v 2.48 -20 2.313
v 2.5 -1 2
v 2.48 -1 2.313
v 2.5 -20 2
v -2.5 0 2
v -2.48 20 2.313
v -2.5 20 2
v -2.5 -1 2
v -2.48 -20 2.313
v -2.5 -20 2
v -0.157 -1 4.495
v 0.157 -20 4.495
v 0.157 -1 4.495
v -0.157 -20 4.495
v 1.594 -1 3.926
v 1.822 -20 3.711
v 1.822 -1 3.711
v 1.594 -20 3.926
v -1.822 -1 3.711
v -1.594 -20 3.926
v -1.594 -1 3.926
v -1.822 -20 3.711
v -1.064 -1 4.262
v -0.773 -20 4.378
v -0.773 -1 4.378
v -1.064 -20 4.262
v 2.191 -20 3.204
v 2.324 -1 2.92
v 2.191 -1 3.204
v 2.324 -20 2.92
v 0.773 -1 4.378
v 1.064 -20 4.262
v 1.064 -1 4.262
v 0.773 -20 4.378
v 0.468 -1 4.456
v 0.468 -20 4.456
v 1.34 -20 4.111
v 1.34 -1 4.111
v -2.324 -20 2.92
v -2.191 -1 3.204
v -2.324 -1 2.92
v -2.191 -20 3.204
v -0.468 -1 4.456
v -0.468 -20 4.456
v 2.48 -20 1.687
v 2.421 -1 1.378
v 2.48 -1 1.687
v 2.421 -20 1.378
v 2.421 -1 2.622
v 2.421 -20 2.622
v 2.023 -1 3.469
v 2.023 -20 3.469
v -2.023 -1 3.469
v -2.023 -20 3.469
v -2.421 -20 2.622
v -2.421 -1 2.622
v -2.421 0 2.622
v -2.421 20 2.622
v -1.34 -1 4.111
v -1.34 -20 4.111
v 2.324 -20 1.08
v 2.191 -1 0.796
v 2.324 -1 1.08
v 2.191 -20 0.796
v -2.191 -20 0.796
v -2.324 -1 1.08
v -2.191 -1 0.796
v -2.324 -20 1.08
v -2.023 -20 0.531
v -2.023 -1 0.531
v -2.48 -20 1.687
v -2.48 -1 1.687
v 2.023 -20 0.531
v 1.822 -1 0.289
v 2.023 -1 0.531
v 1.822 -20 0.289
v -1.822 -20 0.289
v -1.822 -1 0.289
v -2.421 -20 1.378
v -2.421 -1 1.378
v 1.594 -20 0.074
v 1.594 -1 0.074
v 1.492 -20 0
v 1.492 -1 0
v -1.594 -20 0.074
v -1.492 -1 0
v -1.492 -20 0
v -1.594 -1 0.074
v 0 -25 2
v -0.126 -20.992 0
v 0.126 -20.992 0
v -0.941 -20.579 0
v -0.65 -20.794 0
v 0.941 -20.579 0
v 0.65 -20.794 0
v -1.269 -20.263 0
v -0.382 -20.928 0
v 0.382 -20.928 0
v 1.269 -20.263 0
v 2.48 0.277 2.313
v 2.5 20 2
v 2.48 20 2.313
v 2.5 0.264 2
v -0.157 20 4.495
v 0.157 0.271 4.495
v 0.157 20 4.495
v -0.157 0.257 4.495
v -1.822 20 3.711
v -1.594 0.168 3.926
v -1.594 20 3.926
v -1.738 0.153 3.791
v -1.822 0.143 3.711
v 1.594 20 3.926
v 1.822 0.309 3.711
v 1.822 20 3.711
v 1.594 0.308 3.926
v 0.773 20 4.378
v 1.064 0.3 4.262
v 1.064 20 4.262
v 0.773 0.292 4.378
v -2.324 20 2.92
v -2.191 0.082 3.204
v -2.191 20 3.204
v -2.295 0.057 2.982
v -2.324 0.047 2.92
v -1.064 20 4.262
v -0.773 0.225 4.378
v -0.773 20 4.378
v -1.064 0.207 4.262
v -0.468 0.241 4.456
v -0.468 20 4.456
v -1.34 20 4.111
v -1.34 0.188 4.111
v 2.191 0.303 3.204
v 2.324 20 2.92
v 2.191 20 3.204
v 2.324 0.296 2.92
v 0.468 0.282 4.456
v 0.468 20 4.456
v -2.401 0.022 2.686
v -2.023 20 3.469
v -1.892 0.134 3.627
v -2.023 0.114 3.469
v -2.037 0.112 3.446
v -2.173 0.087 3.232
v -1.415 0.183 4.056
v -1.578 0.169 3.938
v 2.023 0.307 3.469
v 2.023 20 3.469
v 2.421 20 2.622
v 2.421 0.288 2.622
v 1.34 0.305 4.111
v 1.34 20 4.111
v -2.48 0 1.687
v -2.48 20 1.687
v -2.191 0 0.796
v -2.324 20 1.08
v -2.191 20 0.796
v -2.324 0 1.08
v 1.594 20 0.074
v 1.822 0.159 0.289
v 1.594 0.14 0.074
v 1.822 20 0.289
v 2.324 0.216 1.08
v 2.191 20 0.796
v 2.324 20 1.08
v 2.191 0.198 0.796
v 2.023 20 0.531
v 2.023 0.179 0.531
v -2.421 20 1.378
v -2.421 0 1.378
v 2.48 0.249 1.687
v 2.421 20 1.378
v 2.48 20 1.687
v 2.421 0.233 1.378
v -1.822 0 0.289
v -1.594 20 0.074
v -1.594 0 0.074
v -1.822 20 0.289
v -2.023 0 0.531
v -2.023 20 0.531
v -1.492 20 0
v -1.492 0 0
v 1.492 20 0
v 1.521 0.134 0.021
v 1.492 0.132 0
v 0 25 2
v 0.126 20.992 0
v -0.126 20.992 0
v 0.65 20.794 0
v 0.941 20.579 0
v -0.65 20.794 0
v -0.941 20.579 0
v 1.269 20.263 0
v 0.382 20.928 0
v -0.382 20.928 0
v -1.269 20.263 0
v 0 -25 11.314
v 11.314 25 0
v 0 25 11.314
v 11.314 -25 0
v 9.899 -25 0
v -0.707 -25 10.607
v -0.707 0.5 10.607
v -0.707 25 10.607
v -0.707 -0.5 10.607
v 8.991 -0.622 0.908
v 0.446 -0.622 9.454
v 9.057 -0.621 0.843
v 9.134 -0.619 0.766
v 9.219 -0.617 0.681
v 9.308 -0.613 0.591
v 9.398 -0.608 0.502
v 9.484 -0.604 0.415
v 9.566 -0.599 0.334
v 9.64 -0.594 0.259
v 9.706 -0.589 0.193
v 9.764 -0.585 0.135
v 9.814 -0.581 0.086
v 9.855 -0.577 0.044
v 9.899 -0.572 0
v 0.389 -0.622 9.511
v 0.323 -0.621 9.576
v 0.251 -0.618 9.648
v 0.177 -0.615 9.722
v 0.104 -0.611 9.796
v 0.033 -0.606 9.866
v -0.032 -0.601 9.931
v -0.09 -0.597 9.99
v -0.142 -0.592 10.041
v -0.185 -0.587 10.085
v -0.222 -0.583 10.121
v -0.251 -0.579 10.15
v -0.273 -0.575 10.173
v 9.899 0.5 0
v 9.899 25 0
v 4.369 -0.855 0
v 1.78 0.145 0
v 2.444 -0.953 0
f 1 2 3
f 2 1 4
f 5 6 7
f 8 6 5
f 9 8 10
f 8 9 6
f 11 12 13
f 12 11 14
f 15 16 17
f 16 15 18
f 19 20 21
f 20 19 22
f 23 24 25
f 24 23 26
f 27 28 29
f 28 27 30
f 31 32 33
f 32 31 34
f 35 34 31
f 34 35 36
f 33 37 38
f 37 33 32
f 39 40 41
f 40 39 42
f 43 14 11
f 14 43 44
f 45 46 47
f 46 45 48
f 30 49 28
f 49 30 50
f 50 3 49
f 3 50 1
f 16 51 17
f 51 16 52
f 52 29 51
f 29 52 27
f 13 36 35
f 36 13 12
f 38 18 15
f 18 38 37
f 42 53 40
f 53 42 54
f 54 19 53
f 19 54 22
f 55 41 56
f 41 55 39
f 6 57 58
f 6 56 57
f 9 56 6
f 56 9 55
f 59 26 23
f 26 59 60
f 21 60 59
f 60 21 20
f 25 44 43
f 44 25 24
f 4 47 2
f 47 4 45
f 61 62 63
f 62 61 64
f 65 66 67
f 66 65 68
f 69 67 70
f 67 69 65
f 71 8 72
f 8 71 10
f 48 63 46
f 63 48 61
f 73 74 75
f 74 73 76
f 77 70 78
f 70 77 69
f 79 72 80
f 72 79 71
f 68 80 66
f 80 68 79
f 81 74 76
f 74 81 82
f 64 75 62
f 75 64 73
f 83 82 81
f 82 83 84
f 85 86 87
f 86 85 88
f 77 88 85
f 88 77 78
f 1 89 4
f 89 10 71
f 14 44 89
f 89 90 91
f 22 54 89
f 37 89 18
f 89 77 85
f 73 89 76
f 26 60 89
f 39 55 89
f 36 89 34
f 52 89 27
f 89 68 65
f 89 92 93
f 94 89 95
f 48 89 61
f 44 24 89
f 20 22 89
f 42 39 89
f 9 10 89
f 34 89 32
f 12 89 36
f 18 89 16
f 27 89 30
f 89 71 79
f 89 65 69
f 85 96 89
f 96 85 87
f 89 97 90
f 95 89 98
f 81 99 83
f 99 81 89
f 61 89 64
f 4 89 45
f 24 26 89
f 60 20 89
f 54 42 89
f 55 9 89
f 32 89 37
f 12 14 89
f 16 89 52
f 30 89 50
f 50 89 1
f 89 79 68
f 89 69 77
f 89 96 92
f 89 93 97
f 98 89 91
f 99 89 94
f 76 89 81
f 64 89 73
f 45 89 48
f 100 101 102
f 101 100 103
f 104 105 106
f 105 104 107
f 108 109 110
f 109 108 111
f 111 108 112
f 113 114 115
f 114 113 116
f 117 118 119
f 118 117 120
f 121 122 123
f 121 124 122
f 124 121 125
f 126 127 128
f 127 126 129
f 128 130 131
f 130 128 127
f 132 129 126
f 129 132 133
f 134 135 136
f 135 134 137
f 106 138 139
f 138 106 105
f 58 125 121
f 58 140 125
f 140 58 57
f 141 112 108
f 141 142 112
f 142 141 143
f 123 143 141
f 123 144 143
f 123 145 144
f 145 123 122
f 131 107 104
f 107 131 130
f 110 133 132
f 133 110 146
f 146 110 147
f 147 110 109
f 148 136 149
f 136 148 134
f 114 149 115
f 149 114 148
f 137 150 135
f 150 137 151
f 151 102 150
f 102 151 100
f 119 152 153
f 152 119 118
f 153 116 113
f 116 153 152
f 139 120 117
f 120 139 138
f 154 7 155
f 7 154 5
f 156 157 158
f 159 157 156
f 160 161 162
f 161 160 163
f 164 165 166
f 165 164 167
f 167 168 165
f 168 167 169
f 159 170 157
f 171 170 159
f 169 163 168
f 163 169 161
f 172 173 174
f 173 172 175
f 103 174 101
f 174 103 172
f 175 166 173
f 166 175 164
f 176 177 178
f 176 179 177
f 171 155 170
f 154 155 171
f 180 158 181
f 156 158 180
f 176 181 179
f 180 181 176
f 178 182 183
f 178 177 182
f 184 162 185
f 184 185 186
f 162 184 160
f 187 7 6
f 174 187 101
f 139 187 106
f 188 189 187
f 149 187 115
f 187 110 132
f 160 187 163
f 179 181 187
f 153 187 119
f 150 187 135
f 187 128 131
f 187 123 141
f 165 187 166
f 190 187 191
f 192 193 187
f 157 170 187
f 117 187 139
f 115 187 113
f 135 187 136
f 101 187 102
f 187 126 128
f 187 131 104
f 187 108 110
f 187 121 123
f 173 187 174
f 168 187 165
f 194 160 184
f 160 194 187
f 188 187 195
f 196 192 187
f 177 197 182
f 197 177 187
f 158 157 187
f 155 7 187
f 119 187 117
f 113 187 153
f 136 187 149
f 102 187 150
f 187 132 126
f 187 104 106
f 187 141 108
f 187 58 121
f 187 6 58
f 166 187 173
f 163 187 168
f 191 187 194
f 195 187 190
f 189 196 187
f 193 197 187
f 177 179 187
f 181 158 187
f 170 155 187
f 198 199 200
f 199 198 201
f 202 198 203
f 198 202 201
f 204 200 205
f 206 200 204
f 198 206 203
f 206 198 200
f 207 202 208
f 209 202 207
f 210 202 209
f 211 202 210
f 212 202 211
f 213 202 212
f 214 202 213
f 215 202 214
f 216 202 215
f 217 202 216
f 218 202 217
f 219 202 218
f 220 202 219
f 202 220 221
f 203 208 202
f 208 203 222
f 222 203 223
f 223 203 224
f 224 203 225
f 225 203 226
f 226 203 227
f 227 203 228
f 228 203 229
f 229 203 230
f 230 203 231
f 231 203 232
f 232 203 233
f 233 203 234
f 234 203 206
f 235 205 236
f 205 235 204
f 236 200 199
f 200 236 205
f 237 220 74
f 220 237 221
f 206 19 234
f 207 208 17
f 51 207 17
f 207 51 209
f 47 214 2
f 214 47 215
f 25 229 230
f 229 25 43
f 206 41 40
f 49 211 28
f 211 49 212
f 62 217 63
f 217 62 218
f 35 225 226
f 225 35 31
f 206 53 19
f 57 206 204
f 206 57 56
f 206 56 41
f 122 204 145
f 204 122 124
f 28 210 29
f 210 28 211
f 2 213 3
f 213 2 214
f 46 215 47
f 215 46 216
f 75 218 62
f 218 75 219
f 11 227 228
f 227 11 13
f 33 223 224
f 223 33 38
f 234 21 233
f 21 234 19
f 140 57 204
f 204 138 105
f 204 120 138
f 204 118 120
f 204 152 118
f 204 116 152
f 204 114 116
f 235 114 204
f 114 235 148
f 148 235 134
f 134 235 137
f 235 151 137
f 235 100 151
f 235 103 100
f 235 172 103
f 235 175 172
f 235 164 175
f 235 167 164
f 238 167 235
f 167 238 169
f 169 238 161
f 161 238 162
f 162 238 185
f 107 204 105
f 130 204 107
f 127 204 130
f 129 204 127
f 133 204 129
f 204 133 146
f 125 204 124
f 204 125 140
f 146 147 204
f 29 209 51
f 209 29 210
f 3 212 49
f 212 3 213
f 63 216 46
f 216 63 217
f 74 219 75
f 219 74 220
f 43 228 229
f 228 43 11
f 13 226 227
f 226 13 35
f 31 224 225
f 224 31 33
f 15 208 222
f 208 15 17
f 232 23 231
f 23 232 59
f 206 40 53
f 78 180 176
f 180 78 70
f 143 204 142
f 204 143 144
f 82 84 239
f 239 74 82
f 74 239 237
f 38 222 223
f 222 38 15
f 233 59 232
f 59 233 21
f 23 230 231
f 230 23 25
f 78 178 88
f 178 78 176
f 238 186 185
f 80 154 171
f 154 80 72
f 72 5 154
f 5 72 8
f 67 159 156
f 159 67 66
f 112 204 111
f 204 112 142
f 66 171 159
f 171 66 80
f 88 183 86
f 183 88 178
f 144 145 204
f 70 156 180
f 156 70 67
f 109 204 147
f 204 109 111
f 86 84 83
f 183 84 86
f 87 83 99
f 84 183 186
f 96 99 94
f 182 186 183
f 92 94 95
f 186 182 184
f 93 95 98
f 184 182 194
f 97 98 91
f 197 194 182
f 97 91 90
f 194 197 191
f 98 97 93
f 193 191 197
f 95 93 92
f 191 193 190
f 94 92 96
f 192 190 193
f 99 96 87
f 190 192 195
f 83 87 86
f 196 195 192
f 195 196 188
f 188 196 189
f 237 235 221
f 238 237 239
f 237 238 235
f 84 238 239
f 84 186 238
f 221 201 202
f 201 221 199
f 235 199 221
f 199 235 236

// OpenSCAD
// Cardboard Box Stacker (Remixed in OpenSCAD for printability) 
// Original Design By UnleashSpirit and Wolfcraft In https://www.thingiverse.com/thing:3331874
// Redesign By Brian Khuu 2024 for easier printability and parametric capability

$fn=50;

stacker_thickness = 1;
stacker_flange = 15;
stacker_height = 50;

pole_dia = 5;

rotate([90,0,0])
intersection()
{
    union()
    {
        rotate([0,0,45])
        {
            translate([stacker_flange/2, stacker_thickness/2-1/2, 0])
                cube([stacker_thickness, stacker_flange+1, stacker_height], center=true);
        }

        hull()
        {
            rotate([0,0,45])
            translate([stacker_flange/2, stacker_thickness/2-1/2, 0])
                cube([stacker_thickness, stacker_flange+1, 1], center=true);
            translate([0,2,0])
                cylinder(d=pole_dia, h=1);
        }

        translate([0,2,0])
        {
            cylinder(d=pole_dia, h=stacker_height/2-pole_dia);
            translate([0,0,stacker_height/2-pole_dia])
                cylinder(d1=pole_dia,d2=0, h=pole_dia);
        }

        rotate([0,180,0])
        translate([0,2,0])
        {
            cylinder(d=pole_dia, h=stacker_height/2-pole_dia);
            translate([0,0,stacker_height/2-pole_dia])
                cylinder(d1=pole_dia,d2=0, h=pole_dia);
        }
    }
    
   translate([0,stacker_flange/2,0])
    cube([stacker_flange*2,stacker_flange,stacker_height], center=true);
}
